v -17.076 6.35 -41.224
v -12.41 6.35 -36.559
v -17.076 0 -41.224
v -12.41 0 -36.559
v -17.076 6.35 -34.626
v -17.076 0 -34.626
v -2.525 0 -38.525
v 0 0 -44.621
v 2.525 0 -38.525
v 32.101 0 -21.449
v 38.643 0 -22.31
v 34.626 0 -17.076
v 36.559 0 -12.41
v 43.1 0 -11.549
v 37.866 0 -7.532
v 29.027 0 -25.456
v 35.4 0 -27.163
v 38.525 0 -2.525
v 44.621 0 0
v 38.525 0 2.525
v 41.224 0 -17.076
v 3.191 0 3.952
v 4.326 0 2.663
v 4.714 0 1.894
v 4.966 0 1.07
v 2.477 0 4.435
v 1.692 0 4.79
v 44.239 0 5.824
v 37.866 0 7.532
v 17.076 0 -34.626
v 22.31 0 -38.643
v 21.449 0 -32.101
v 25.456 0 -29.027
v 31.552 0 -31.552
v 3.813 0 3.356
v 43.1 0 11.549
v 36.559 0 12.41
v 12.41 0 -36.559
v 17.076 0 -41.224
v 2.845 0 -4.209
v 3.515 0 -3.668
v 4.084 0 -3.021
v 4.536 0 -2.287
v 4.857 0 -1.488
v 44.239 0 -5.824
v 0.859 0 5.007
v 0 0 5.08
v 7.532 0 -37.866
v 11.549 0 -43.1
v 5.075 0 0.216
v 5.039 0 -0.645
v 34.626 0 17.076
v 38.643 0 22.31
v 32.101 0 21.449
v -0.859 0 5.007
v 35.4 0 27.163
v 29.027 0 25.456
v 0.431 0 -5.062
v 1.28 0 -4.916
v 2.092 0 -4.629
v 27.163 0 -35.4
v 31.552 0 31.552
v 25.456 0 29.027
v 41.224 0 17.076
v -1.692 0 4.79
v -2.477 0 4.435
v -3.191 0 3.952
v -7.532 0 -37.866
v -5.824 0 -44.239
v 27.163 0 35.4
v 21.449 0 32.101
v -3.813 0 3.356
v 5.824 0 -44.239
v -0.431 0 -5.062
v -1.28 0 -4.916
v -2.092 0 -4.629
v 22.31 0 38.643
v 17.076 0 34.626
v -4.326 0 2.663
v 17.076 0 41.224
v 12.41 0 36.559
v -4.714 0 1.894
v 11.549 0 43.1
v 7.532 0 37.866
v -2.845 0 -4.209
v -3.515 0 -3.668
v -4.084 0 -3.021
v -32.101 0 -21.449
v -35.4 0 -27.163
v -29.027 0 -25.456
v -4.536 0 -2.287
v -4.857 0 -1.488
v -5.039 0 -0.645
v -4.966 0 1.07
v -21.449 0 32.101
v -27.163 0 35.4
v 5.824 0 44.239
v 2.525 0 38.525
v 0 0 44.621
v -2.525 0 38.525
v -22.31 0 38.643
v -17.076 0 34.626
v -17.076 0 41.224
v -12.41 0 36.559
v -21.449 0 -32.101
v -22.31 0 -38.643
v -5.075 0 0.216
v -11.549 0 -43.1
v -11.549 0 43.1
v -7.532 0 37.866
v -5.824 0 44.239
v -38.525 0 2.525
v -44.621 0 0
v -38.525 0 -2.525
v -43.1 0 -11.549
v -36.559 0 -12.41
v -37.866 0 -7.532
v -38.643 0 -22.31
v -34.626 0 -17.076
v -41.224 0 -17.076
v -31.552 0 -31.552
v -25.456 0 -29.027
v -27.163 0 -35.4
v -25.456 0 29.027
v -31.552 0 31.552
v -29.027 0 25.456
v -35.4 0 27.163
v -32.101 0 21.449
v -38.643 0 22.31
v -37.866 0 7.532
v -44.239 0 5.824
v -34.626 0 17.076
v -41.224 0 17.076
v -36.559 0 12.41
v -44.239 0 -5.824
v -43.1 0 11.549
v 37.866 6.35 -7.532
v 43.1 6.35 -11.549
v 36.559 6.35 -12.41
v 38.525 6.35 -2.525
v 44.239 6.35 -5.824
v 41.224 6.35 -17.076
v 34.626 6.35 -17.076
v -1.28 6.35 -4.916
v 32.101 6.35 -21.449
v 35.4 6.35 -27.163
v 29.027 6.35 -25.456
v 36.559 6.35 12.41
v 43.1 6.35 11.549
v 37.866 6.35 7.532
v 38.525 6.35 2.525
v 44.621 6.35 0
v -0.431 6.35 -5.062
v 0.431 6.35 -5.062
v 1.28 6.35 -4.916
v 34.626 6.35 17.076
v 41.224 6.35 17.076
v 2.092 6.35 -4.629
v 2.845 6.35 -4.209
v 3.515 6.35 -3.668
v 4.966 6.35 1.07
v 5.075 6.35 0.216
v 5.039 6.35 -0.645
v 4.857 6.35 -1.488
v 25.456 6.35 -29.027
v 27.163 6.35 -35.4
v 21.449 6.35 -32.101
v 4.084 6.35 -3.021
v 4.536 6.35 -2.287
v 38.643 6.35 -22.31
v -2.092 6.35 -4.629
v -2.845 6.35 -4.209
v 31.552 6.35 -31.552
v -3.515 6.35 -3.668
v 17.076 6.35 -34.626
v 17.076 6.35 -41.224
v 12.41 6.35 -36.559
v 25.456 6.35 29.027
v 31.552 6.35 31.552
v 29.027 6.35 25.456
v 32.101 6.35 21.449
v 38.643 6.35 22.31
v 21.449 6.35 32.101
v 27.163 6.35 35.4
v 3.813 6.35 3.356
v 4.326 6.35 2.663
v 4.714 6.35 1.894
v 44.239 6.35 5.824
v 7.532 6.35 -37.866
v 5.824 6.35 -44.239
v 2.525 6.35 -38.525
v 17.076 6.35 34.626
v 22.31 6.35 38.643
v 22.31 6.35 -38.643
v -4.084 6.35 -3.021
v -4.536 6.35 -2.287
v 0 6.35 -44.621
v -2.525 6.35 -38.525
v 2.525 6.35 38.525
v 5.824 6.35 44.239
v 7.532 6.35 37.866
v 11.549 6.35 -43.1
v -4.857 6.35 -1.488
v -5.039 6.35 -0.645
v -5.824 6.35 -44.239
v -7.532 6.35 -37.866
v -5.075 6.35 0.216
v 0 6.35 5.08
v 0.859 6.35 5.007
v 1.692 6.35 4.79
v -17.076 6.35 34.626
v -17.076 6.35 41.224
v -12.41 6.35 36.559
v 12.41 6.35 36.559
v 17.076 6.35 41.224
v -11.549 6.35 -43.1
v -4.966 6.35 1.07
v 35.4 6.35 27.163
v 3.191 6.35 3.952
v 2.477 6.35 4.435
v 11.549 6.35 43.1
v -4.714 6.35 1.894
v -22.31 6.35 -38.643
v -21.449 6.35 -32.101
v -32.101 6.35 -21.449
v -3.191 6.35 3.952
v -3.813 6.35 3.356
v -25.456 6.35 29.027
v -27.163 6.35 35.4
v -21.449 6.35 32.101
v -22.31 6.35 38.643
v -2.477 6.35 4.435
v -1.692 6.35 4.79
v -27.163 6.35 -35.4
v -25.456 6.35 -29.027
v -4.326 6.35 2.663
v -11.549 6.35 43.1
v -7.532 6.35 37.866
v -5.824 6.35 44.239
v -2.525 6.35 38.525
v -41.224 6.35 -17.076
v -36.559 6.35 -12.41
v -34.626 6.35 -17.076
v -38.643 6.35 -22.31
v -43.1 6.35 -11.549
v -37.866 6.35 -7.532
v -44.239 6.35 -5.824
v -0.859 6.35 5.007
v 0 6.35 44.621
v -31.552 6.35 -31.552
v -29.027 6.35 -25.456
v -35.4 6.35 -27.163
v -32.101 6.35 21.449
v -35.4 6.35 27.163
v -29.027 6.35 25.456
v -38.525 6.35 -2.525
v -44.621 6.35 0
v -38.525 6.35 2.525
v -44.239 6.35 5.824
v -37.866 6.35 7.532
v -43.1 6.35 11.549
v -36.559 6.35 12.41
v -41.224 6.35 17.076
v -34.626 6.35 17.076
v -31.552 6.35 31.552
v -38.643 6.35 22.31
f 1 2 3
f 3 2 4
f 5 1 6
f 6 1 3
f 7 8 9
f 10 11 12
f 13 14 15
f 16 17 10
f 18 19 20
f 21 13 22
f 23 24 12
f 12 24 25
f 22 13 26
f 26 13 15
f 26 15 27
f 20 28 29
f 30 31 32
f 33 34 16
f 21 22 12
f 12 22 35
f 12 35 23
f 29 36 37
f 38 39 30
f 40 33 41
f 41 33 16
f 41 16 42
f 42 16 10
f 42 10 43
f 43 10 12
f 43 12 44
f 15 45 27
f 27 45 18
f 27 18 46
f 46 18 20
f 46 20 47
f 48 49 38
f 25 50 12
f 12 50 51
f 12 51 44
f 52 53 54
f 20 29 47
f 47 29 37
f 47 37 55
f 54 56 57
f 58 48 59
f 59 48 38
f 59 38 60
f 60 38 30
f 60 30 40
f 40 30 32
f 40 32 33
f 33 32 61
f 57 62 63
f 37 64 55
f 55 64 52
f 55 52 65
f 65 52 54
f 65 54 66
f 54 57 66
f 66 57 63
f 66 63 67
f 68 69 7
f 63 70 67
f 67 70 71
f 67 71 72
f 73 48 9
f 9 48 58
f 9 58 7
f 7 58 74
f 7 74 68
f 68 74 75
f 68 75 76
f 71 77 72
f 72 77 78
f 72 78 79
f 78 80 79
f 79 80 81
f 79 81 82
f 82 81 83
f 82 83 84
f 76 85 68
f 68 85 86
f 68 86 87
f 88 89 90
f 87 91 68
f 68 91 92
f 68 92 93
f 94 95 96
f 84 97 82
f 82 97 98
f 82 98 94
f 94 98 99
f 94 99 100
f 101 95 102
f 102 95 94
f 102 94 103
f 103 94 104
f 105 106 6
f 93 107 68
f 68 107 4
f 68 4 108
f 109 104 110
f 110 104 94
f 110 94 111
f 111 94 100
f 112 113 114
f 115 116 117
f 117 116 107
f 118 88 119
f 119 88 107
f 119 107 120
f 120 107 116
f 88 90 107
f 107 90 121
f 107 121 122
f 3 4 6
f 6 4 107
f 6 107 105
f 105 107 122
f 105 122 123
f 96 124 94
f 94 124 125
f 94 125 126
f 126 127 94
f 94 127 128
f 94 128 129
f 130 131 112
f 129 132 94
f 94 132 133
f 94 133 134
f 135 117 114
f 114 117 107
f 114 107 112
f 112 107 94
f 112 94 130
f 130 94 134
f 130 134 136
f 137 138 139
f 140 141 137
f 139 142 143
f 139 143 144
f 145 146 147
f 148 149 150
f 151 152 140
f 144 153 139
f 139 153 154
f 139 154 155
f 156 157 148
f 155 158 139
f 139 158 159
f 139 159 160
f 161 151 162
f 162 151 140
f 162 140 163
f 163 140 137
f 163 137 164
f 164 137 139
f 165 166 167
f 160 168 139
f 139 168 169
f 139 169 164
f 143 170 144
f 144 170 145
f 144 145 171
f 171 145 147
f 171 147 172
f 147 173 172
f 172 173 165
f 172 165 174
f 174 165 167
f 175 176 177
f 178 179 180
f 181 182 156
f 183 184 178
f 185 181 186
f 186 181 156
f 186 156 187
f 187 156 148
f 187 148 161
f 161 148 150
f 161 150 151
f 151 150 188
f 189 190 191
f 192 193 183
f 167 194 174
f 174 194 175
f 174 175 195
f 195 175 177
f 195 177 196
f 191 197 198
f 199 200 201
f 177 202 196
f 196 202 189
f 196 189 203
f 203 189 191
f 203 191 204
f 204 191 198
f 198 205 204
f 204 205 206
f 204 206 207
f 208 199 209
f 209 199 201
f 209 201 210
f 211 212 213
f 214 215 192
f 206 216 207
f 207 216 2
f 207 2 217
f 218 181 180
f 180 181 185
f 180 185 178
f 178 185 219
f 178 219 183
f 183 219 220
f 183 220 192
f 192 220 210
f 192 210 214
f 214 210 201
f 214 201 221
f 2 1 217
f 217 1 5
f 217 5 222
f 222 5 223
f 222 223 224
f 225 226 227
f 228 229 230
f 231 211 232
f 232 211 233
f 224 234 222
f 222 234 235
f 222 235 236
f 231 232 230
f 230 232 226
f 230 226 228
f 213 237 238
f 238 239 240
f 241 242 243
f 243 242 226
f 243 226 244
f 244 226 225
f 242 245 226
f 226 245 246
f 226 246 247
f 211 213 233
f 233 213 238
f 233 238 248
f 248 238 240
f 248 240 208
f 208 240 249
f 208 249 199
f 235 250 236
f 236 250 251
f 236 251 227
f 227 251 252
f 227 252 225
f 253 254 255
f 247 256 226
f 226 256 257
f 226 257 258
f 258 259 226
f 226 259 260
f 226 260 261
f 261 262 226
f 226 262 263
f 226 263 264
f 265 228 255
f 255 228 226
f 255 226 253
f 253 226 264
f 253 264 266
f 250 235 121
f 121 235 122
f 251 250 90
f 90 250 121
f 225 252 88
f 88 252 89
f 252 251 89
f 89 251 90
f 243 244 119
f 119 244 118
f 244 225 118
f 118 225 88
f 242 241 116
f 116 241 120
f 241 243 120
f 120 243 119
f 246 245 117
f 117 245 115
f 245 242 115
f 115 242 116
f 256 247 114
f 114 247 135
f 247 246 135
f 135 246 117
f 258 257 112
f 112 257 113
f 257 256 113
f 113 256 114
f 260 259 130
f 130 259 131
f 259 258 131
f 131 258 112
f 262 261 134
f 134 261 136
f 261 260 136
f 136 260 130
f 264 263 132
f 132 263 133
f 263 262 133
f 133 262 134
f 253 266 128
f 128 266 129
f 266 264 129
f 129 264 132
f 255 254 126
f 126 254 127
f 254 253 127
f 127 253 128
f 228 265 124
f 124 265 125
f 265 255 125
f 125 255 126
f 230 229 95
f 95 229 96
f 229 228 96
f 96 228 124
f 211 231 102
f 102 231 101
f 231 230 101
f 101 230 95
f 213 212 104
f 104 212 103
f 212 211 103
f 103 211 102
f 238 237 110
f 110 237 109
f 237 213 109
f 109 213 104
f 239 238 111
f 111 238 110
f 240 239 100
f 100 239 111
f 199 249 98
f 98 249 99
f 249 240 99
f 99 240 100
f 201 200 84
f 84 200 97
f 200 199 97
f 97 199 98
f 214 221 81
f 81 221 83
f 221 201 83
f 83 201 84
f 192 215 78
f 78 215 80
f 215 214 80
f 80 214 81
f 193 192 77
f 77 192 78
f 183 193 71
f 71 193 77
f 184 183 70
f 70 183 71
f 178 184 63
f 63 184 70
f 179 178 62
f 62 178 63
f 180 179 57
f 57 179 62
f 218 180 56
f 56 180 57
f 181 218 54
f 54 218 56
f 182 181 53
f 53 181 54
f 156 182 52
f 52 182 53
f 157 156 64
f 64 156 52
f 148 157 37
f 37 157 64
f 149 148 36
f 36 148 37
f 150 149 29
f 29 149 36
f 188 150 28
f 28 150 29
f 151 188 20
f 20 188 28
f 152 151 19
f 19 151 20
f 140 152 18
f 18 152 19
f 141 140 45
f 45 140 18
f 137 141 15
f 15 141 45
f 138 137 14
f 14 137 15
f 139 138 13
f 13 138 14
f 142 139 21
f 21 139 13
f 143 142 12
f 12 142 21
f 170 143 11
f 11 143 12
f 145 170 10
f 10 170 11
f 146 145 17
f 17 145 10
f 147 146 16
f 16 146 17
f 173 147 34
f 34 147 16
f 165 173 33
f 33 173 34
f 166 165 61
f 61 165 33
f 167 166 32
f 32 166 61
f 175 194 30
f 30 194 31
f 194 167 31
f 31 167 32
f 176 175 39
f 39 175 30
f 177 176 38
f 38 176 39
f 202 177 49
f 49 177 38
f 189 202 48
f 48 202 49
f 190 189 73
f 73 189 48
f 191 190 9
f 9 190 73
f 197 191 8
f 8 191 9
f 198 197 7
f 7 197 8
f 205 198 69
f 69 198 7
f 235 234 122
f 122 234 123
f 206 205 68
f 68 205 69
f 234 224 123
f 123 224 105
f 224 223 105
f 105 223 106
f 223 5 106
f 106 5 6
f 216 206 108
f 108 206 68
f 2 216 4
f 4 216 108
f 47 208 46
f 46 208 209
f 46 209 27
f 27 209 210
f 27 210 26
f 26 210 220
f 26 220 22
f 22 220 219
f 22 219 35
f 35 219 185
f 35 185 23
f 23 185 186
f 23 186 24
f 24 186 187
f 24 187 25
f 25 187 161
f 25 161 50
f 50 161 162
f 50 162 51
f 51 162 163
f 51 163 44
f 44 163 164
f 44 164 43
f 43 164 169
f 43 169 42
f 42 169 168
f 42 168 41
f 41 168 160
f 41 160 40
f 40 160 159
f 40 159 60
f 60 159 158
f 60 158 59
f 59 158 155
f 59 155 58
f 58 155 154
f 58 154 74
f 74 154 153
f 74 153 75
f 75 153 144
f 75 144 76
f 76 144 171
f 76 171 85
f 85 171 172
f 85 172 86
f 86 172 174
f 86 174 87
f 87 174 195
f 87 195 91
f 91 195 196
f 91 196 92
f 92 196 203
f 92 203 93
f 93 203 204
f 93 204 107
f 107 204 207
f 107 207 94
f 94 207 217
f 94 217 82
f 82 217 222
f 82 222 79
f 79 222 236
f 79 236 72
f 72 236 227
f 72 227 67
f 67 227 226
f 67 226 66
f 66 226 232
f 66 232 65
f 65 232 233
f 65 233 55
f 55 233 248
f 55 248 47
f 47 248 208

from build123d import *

# Parameters (mm, degrees)
BOSS_EXTRUDE1_DEPTH = 6.35
SKETCH3_R           = 5.08
CUT_EXTRUDE3_DEPTH  = 6.35


with BuildPart() as part:
    # Sketch2 → Boss-Extrude1 (new body)
    with BuildSketch(Plane(origin=(0, 0, 0), x_dir=(1, 0, 0), z_dir=(0, 1, 0))):
        Polygon((-17.07562385, 34.625939831), (-17.07562385, 41.224202684), (-12.409947442, 36.558526277), (-11.548701317, 43.100340077), (-7.531933394, 37.865586202), (-5.824177303, 44.2390187), (-2.525045876, 38.524755449), (0, 44.620755449), (2.525045876, 38.524755449), (5.824177303, 44.2390187), (7.531933394, 37.865586202), (11.548701317, 43.100340077), (12.409947442, 36.558526277), (17.07562385, 41.224202684), (17.07562385, 34.625939831), (22.310377724, 38.642707755), (21.449131599, 32.100893955), (27.16339485, 35.400025382), (25.45563876, 29.026592883), (31.55163876, 31.55163876), (29.026592883, 25.45563876), (35.400025382, 27.163394851), (32.100893955, 21.449131599), (38.642707755, 22.310377724), (34.625939831, 17.07562385), (41.224202684, 17.07562385), (36.558526277, 12.409947443), (43.100340077, 11.548701317), (37.865586202, 7.531933394), (44.2390187, 5.824177303), (38.524755449, 2.525045876), (44.620755449, 0), (38.524755449, -2.525045876), (44.2390187, -5.824177303), (37.865586202, -7.531933394), (43.100340077, -11.548701317), (36.558526277, -12.409947442), (41.224202684, -17.07562385), (34.625939831, -17.07562385), (38.642707755, -22.310377724), (32.100893955, -21.449131599), (35.400025382, -27.16339485), (29.026592883, -25.45563876), (31.55163876, -31.55163876), (25.45563876, -29.026592883), (27.163394851, -35.400025382), (21.449131599, -32.100893955), (22.310377724, -38.642707755), (17.07562385, -34.625939831), (17.07562385, -41.224202684), (12.409947443, -36.558526277), (11.548701317, -43.100340077), (7.531933394, -37.865586202), (5.824177303, -44.2390187), (2.525045876, -38.524755449), (0, -44.620755449), (-2.525045876, -38.524755449), (-5.824177303, -44.2390187), (-7.531933394, -37.865586202), (-11.548701317, -43.100340077), (-12.409947442, -36.558526277), (-17.07562385, -41.224202684), (-17.07562385, -34.625939831), (-22.310377724, -38.642707755), (-21.449131599, -32.100893955), (-27.16339485, -35.400025382), (-25.455638759, -29.026592883), (-31.551638759, -31.55163876), (-29.026592883, -25.45563876), (-35.400025382, -27.16339485), (-32.100893955, -21.449131599), (-38.642707755, -22.310377724), (-34.625939831, -17.07562385), (-41.224202684, -17.07562385), (-36.558526277, -12.409947442), (-43.100340077, -11.548701317), (-37.865586202, -7.531933394), (-44.2390187, -5.824177303), (-38.524755449, -2.525045876), (-44.620755449, 0), (-38.524755449, 2.525045876), (-44.2390187, 5.824177303), (-37.865586202, 7.531933394), (-43.100340077, 11.548701317), (-36.558526277, 12.409947442), (-41.224202684, 17.07562385), (-34.625939831, 17.07562385), (-38.642707755, 22.310377724), (-32.100893955, 21.449131599), (-35.400025382, 27.16339485), (-29.026592883, 25.45563876), (-31.55163876, 31.55163876), (-25.45563876, 29.026592883), (-27.16339485, 35.400025382), (-21.449131599, 32.100893955), (-22.310377724, 38.642707755), align=None)
    extrude(amount=BOSS_EXTRUDE1_DEPTH)

    # Sketch3 → Cut-Extrude3 (cut)
    with BuildSketch(Plane(origin=(0, 6.35, 0), x_dir=(1, 0, 0), z_dir=(0, 1, 0))):
        with Locations(Location((0, 0, 0), (0, 0, 270))):
            Circle(SKETCH3_R)
    extrude(amount=-CUT_EXTRUDE3_DEPTH, mode=Mode.SUBTRACT)


solid = part.part
